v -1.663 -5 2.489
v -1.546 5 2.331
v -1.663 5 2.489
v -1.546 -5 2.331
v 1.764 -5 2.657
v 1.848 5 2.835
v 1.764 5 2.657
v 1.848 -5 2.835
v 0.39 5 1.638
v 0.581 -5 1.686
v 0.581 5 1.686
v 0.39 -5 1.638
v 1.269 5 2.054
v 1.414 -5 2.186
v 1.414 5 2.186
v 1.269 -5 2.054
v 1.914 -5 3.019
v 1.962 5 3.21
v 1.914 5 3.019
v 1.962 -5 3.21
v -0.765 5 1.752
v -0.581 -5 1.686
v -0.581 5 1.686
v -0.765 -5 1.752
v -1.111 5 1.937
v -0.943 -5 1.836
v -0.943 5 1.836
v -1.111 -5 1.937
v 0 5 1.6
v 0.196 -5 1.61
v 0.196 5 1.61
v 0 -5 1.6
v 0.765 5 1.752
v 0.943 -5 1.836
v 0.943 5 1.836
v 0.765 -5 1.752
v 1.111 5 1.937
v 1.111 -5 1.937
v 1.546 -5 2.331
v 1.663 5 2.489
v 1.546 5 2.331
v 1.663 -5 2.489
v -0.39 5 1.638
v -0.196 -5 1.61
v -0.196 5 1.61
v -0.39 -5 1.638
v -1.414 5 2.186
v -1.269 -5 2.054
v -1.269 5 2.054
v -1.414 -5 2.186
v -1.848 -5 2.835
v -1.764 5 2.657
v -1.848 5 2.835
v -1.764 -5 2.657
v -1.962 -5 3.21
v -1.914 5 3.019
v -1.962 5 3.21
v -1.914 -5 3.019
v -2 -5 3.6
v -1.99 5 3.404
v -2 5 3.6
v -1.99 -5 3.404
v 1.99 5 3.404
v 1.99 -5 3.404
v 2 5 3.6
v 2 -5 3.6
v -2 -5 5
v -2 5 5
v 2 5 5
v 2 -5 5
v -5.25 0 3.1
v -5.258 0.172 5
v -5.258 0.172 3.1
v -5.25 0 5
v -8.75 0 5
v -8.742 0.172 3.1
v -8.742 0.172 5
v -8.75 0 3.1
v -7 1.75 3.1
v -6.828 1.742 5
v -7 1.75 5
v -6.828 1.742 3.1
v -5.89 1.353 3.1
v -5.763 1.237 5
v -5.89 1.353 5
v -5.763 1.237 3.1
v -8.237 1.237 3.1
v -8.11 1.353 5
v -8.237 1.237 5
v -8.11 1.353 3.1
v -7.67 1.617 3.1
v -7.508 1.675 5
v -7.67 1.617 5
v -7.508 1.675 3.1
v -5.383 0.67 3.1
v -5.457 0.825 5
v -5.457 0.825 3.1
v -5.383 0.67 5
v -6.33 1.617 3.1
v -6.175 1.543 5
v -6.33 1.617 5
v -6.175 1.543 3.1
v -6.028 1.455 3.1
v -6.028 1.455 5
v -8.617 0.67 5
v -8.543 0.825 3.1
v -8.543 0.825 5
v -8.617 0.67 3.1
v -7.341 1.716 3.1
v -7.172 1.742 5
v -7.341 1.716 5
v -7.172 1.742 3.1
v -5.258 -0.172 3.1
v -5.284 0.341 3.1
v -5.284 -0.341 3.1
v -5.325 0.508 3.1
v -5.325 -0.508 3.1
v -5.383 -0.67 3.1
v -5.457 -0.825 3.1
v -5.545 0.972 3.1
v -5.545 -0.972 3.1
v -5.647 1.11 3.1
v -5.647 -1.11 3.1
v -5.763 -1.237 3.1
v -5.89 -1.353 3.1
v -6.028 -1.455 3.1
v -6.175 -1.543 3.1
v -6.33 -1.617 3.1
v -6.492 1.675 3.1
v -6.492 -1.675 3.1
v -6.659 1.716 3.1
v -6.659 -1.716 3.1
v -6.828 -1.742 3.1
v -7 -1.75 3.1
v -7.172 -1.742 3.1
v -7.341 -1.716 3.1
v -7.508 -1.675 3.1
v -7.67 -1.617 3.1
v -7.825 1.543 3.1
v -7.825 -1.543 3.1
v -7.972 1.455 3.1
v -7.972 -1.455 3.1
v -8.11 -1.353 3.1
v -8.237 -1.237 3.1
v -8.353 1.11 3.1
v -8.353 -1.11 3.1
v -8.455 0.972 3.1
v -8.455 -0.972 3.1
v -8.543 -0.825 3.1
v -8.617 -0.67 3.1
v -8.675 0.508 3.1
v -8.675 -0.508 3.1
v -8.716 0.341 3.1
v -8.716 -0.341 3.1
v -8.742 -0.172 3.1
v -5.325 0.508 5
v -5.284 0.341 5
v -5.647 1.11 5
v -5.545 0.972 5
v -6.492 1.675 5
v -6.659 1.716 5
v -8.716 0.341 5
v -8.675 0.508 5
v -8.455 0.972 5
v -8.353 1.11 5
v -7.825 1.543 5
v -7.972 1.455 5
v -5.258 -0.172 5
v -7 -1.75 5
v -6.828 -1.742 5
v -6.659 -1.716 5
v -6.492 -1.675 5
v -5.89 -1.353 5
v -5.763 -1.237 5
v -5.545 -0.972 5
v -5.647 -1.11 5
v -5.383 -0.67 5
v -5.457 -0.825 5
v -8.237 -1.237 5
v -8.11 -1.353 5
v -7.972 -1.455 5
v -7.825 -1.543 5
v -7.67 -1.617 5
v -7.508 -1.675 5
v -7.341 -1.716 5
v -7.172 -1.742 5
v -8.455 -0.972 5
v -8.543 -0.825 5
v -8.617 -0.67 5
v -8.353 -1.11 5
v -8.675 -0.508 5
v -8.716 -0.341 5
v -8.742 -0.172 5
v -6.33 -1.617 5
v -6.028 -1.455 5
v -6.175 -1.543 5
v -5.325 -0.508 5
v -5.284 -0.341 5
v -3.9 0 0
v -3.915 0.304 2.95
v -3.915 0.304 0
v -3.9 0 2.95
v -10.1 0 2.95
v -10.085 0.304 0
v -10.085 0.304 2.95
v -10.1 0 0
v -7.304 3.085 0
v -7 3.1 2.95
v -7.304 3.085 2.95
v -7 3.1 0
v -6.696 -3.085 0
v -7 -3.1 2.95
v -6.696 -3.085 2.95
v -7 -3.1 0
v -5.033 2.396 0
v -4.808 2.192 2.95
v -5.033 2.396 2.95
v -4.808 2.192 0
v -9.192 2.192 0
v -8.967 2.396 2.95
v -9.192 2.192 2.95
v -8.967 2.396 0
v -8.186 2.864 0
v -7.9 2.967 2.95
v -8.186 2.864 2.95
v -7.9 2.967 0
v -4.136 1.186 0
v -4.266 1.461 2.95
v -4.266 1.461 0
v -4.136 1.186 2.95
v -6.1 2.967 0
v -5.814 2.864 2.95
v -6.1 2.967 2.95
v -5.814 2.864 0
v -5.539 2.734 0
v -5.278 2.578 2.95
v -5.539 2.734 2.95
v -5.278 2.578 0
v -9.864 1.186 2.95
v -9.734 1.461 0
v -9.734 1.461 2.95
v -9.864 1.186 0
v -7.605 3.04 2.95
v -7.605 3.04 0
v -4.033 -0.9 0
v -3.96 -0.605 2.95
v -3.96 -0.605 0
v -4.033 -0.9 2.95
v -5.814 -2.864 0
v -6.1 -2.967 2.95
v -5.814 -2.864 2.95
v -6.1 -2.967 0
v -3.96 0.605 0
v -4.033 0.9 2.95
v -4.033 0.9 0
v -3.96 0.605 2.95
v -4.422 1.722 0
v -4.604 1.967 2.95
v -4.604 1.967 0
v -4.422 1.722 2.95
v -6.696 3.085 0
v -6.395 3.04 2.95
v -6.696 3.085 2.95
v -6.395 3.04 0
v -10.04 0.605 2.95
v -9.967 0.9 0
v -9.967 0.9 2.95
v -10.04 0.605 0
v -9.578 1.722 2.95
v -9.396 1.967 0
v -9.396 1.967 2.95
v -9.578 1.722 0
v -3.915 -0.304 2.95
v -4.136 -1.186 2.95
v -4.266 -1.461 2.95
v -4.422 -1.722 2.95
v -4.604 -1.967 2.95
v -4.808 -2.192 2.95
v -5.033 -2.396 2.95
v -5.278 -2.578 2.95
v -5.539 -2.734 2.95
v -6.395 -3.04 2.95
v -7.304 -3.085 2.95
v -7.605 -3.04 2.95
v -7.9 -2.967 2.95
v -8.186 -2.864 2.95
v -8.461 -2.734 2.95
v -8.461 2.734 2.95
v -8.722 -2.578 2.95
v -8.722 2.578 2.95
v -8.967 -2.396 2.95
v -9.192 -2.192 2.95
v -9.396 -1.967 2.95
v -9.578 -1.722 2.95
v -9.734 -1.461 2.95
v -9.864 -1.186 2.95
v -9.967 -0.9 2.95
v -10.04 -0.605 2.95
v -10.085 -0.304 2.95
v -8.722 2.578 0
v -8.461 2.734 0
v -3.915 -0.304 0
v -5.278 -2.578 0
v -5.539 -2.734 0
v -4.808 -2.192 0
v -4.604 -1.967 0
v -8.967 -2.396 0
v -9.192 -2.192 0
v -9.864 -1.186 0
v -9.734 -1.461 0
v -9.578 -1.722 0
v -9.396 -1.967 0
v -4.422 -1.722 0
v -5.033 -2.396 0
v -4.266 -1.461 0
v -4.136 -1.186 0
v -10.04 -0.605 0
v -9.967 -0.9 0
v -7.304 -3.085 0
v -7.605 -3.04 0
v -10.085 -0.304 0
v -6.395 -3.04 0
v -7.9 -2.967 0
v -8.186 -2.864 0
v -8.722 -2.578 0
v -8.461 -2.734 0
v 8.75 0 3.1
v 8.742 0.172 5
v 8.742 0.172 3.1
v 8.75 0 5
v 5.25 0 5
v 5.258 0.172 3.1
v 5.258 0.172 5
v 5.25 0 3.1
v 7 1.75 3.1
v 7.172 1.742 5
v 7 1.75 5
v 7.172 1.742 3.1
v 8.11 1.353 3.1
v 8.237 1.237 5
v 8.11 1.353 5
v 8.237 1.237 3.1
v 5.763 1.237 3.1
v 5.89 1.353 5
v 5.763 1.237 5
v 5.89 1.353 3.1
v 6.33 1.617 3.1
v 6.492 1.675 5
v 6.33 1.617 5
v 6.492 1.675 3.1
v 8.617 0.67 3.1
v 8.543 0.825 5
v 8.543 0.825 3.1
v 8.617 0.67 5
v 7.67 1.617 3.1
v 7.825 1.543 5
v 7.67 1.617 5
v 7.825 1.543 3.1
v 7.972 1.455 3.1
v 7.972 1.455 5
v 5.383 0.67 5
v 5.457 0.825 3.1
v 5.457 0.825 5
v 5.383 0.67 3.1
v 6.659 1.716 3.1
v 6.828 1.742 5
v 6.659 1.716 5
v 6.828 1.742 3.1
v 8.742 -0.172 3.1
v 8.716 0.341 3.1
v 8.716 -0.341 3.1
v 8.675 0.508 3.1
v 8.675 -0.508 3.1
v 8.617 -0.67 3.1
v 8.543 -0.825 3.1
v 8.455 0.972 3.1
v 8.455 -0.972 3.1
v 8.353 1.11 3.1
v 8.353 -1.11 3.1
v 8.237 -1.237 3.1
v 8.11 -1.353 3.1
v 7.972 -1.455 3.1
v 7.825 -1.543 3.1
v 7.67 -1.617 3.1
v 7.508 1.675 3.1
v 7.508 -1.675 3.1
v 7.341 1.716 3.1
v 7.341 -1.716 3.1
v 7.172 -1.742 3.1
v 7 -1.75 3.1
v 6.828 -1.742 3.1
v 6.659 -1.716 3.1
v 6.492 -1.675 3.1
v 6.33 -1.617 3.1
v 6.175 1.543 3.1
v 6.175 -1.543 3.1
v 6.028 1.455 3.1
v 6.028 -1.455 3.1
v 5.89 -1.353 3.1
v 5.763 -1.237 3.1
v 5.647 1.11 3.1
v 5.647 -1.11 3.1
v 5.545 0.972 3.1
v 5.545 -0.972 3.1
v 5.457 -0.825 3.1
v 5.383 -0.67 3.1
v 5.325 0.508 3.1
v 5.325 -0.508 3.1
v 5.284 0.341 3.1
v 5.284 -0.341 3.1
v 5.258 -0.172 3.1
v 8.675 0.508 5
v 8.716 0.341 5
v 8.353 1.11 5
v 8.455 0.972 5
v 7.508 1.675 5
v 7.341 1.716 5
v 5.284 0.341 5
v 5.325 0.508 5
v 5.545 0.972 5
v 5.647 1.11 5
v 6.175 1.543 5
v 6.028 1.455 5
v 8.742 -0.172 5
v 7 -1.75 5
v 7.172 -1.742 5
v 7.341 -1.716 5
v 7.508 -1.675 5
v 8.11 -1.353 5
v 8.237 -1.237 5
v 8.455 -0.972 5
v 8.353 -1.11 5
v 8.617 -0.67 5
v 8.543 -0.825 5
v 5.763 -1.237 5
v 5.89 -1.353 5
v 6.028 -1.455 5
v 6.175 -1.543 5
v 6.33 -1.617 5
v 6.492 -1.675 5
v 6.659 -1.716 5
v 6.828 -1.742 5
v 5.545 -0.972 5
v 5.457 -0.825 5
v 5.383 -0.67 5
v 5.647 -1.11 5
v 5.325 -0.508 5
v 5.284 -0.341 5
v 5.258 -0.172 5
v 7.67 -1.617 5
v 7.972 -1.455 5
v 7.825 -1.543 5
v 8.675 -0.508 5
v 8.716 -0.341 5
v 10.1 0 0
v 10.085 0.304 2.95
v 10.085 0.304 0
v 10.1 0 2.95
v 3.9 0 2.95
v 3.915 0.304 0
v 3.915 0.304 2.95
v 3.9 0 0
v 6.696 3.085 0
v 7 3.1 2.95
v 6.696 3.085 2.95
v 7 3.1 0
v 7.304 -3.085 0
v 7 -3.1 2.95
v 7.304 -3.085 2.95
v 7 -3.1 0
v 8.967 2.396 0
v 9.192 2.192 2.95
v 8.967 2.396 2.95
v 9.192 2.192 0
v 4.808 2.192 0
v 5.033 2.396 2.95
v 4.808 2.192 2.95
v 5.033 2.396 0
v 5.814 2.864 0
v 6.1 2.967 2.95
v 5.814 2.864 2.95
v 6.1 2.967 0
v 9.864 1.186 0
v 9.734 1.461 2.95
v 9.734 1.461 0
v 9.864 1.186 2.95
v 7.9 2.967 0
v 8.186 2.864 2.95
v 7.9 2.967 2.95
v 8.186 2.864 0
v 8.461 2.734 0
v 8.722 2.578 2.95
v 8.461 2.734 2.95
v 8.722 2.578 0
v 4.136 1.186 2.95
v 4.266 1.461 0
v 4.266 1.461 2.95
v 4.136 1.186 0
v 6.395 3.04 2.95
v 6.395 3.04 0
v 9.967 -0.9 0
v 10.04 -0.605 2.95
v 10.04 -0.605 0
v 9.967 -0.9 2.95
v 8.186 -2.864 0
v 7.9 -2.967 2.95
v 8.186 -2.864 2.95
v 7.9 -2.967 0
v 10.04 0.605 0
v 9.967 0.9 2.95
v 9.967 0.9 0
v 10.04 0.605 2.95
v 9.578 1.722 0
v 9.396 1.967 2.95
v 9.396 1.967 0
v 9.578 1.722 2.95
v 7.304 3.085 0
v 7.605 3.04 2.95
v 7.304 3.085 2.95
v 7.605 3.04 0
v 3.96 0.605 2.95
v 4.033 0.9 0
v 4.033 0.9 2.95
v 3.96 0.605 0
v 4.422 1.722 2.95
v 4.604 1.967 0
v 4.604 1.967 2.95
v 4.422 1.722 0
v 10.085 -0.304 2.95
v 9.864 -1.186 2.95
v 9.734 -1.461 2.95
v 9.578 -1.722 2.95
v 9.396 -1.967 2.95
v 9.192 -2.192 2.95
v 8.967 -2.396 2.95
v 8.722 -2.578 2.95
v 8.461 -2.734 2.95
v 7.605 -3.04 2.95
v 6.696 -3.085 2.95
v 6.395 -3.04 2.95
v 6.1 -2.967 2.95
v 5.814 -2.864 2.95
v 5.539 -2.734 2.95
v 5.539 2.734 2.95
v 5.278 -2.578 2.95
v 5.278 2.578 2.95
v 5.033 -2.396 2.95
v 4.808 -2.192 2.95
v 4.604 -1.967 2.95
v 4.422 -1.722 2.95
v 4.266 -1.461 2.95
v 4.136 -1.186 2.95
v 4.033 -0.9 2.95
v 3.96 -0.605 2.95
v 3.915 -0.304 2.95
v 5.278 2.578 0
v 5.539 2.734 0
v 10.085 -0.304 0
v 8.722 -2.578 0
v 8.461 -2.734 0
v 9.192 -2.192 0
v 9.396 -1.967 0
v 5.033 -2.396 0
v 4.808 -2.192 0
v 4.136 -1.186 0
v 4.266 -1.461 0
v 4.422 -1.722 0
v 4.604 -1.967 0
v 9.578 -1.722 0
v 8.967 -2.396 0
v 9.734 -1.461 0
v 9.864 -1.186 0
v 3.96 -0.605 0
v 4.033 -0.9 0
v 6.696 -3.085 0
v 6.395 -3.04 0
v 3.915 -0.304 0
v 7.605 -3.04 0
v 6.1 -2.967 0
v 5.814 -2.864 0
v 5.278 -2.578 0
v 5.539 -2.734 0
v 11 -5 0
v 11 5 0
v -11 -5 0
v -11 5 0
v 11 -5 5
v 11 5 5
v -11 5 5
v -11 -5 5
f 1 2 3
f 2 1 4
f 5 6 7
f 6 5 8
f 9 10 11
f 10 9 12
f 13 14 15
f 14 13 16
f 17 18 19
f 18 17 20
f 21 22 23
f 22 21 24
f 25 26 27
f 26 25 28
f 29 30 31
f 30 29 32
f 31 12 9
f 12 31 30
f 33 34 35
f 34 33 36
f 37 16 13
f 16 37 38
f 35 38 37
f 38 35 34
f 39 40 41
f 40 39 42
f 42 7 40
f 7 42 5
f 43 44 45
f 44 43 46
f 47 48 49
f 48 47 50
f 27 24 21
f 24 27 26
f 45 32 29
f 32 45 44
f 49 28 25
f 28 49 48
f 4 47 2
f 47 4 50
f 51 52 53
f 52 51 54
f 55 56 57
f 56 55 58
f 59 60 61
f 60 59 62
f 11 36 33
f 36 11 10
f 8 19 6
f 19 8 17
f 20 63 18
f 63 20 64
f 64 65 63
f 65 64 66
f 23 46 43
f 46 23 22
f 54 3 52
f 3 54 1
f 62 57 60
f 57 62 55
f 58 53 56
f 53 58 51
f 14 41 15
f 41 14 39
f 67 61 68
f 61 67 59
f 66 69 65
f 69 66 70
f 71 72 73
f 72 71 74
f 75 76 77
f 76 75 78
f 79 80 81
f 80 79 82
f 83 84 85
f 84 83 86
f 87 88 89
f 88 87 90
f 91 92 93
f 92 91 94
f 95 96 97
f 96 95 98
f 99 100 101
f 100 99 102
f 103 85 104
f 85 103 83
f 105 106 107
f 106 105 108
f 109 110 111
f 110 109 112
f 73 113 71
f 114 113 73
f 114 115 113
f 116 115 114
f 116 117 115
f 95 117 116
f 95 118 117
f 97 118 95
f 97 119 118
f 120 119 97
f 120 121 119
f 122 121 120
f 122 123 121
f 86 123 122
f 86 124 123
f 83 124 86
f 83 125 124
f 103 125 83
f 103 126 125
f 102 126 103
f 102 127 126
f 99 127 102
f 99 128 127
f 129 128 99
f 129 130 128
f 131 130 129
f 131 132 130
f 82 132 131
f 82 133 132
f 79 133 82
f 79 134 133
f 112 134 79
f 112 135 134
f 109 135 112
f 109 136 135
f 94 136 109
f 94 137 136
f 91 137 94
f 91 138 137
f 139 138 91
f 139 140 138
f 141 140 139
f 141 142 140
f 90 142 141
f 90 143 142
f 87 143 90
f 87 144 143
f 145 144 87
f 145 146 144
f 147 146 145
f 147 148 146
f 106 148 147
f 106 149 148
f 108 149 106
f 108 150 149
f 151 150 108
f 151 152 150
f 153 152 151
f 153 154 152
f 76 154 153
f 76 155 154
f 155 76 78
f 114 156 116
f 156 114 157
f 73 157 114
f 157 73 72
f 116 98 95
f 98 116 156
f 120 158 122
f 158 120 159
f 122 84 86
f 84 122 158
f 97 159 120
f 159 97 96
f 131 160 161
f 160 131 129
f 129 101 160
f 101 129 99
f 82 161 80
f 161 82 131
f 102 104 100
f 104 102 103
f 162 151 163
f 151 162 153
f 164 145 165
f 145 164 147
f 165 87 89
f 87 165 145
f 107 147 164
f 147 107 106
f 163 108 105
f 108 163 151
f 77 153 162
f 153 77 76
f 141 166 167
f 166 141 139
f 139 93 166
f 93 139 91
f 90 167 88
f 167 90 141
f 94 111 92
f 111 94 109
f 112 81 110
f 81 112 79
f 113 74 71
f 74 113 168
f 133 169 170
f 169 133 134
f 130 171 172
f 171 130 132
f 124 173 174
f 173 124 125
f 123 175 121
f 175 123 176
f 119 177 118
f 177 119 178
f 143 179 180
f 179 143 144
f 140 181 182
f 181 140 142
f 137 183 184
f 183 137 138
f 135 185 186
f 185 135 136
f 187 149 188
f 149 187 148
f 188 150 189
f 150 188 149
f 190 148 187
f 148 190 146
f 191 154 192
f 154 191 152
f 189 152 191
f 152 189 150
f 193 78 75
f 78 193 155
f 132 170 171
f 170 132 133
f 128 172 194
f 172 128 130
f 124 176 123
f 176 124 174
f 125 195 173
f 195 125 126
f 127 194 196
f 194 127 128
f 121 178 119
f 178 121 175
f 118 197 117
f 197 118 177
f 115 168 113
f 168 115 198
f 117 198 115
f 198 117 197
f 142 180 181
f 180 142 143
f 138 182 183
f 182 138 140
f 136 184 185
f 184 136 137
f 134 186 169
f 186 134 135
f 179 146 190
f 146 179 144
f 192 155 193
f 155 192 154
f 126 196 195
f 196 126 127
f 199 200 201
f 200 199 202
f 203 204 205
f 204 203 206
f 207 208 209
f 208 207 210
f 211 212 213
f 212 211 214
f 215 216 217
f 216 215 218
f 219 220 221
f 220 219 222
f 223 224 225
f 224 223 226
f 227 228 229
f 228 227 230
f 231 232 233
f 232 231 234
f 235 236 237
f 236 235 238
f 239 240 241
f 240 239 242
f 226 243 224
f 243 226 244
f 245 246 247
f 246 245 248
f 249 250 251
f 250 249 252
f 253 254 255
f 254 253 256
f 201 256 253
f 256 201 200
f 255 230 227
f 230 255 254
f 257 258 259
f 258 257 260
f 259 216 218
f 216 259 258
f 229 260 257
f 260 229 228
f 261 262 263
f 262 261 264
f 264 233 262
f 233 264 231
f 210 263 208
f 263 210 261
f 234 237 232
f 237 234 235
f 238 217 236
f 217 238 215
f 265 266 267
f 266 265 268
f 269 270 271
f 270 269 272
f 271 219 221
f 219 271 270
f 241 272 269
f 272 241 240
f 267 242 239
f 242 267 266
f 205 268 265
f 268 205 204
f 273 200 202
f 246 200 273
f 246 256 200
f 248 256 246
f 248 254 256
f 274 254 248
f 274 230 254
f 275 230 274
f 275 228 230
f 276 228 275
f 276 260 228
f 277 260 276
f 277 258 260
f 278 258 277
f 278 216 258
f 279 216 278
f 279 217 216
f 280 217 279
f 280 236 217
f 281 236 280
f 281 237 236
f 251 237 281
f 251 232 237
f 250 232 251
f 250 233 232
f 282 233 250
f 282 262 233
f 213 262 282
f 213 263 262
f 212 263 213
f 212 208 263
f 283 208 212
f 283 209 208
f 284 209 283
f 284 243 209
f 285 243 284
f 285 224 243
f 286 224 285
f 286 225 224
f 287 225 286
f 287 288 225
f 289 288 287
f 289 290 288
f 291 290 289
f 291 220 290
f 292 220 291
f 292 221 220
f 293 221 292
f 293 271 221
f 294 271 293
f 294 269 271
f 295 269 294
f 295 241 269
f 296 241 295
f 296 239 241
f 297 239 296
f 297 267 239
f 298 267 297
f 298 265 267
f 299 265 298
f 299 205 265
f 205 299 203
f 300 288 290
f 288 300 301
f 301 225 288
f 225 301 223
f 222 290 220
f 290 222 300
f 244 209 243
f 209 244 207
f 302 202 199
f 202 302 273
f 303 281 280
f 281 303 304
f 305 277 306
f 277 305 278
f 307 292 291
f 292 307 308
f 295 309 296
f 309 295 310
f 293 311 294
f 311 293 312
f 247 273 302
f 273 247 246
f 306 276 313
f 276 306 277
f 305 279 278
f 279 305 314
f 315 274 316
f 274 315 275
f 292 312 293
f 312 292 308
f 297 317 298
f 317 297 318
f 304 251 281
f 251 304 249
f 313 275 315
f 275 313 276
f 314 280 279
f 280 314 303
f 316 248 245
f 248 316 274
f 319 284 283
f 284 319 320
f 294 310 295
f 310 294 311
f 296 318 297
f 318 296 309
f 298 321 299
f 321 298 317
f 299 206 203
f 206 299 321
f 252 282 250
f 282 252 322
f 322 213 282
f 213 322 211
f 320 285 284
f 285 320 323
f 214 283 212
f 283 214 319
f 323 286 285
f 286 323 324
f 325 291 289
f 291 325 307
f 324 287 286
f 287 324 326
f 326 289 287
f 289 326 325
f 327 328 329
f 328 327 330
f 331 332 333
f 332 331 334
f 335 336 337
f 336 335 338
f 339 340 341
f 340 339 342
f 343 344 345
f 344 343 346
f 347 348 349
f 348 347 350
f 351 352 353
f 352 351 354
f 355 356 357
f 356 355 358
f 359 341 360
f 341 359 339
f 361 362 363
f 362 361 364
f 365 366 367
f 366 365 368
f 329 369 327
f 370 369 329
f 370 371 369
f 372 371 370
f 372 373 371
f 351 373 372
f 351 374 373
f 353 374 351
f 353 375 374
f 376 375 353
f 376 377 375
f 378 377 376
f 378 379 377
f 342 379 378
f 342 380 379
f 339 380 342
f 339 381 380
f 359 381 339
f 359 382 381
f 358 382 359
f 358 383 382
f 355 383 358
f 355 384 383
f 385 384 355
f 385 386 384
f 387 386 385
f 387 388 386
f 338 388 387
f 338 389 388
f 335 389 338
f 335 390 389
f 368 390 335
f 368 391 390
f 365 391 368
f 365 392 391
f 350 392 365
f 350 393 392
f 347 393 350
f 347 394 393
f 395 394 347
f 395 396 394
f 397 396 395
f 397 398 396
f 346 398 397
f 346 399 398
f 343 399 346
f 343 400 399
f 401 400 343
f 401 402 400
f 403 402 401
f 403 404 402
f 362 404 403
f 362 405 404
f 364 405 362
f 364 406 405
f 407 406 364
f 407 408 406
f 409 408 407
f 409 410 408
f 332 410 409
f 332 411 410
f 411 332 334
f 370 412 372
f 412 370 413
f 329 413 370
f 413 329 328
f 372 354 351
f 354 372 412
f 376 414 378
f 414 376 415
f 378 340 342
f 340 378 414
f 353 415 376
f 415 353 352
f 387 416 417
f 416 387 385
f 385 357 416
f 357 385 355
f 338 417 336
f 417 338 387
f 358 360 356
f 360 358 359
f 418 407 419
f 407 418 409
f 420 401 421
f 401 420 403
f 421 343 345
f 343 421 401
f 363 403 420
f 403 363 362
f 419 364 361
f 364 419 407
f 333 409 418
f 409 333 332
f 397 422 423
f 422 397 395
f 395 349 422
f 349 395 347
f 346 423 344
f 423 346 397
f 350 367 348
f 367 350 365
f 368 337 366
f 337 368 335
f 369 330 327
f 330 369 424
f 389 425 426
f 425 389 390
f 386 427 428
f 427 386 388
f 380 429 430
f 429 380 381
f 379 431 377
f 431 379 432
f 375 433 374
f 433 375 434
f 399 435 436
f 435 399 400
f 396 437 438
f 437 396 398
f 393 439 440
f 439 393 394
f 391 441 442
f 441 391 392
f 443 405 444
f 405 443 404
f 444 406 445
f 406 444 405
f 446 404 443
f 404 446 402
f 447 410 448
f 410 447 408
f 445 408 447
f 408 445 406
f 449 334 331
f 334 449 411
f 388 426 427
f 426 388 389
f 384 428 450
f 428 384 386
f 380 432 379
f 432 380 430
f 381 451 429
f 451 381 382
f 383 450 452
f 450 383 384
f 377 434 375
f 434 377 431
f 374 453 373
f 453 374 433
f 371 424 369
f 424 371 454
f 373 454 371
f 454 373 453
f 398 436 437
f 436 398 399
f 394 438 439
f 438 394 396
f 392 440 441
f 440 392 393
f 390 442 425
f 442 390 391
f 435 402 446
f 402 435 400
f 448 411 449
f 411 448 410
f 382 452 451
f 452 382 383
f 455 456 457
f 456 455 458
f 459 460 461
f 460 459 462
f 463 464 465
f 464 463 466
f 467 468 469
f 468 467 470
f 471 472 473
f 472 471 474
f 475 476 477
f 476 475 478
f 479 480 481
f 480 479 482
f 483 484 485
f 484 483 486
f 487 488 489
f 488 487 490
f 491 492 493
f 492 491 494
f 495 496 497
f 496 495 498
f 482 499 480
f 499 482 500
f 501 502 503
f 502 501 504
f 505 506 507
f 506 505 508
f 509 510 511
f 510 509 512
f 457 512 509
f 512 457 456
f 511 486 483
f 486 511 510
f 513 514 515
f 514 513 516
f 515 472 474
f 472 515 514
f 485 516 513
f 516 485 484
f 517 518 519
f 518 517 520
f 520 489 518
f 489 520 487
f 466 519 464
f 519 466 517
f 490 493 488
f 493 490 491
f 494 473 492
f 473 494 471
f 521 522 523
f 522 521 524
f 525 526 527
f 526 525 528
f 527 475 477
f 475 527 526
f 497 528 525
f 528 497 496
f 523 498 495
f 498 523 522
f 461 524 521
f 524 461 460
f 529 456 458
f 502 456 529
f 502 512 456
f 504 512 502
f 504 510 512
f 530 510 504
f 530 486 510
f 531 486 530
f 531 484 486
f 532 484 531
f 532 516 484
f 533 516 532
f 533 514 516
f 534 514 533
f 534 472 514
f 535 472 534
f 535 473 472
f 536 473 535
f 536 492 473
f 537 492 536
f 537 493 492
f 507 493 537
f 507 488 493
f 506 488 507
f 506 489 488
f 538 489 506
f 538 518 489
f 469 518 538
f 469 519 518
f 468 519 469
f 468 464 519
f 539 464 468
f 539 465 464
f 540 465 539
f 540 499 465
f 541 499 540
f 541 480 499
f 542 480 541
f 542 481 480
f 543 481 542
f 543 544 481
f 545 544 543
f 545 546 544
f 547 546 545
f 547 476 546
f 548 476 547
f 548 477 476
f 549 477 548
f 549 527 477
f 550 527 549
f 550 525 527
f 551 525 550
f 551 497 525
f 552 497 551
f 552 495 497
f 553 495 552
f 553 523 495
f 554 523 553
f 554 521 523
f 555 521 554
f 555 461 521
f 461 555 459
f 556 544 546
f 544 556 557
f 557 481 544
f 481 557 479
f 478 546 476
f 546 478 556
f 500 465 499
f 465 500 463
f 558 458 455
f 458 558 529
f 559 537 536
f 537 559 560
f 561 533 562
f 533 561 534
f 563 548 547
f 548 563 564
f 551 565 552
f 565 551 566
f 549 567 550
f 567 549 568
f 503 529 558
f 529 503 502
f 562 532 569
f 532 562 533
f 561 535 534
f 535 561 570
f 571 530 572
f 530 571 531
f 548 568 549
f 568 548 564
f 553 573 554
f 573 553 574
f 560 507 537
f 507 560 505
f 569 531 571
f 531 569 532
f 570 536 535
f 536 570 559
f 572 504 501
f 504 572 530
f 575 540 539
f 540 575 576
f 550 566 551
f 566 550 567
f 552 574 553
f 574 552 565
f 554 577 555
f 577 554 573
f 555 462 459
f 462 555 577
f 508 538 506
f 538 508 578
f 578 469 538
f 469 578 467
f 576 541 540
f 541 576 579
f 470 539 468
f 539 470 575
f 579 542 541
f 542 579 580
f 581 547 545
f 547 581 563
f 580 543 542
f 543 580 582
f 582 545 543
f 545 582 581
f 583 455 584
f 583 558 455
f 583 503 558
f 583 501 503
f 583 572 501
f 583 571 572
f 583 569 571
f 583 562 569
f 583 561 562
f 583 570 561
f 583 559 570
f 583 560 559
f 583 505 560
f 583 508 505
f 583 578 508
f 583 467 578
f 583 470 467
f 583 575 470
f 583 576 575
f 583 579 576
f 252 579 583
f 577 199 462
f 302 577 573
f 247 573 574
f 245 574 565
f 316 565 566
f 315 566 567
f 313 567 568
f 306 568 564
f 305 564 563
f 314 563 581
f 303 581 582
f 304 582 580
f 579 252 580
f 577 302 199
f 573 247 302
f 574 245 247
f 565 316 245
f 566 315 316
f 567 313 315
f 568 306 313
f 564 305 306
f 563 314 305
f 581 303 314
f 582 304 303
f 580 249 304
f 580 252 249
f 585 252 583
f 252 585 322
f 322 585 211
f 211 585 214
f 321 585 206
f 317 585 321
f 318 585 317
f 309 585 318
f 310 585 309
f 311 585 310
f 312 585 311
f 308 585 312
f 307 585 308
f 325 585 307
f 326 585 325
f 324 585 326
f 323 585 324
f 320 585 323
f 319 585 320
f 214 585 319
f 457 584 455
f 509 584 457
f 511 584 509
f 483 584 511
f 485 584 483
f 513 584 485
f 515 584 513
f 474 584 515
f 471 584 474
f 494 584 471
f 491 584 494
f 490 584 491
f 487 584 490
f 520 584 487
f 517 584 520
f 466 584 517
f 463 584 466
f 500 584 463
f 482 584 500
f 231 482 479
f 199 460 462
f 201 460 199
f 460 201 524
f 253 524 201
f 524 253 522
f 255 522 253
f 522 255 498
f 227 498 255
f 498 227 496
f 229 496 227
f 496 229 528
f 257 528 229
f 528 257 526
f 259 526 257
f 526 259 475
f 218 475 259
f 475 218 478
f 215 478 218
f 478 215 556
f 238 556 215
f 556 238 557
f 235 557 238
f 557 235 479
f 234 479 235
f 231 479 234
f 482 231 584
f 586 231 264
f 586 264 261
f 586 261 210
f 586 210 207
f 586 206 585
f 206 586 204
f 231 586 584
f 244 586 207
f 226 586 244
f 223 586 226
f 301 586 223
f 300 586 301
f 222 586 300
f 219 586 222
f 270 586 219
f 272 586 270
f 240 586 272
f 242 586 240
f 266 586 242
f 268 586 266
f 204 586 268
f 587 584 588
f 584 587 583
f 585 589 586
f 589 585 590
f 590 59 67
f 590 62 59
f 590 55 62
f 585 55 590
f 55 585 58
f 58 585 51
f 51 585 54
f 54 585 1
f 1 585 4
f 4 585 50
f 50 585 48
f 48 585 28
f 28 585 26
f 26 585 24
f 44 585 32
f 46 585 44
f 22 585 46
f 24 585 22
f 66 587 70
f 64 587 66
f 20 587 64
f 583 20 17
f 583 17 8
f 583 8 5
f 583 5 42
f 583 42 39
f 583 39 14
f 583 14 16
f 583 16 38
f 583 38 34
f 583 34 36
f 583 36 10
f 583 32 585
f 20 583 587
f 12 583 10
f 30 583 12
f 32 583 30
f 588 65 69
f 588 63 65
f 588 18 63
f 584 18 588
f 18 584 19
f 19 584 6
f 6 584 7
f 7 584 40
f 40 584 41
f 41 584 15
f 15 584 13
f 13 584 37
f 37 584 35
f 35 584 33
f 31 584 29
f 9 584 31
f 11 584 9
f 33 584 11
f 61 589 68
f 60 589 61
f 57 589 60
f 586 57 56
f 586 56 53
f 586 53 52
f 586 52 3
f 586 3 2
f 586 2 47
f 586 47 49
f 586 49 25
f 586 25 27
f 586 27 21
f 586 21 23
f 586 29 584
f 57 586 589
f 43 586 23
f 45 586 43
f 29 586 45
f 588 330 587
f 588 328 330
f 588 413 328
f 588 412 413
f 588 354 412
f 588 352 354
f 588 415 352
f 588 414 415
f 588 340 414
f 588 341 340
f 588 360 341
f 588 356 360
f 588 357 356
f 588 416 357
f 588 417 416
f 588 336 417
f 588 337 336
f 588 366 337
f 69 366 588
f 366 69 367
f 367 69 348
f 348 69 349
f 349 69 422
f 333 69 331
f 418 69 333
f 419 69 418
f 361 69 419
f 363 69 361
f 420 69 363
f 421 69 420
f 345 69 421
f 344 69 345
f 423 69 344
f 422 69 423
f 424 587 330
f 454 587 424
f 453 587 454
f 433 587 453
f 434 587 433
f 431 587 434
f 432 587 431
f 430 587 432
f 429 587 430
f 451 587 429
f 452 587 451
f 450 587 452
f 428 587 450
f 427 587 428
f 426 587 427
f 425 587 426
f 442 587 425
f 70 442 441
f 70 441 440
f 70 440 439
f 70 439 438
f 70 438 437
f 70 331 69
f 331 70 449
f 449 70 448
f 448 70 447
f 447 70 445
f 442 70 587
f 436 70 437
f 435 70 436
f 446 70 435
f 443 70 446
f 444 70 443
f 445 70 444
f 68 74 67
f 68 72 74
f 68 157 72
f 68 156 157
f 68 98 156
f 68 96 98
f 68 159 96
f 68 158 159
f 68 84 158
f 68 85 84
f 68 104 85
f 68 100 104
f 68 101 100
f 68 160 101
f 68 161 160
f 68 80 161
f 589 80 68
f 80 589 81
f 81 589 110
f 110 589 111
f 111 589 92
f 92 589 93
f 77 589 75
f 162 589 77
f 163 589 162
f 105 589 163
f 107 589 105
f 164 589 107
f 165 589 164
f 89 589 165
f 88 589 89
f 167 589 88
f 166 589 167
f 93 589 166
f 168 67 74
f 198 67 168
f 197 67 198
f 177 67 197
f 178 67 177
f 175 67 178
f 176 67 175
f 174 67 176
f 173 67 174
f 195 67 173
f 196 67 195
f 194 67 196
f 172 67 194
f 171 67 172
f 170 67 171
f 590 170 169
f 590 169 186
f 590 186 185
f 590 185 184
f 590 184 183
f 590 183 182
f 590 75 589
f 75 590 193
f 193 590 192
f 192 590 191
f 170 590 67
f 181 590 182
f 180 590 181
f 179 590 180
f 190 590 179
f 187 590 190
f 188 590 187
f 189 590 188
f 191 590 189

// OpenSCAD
//Created by Oleg Skidan RC6OF (ex UR3IQO)
//
//Visit https://github.com/UR3IQO/CW_Paddle for more information
//
//This project is distributed under Creative Commons Attribution 4.0 International
//See the LICENSE file for the details


$fn = 64;

cd = 4; //Cable diameter (диаметр кабеля)
h = 5; //Cable mount height (высота крепления)
dh = 6.2; //Screw head diameter (диаметр головки винтов крепления)
hh = 3;   //Screw head height (высока головки винта)

module screw()
{
   translate([0, 0, hh + 0.1]) cylinder(10, d = 3.5);
   translate([0, 0, -0.05]) cylinder(hh, d = dh);      
}

difference()
{
   //Body (тело детали)
   linear_extrude(h) square([22,10], center = true);

   //Cable cutout (вырез под кабель)
   translate([0, 10, h - cd/2 + 0.6]) rotate([90, 0, 0])
   {
     cylinder(40, d = cd);
     translate([-cd/2, 0, 0]) cube([cd, cd + 3, 40]);
   }
 
   //Mounting screw holes (отверстия под крепежные винты)
   translate([-7, 0, 0]) screw();
   translate([ 7, 0, 0]) screw();
}
